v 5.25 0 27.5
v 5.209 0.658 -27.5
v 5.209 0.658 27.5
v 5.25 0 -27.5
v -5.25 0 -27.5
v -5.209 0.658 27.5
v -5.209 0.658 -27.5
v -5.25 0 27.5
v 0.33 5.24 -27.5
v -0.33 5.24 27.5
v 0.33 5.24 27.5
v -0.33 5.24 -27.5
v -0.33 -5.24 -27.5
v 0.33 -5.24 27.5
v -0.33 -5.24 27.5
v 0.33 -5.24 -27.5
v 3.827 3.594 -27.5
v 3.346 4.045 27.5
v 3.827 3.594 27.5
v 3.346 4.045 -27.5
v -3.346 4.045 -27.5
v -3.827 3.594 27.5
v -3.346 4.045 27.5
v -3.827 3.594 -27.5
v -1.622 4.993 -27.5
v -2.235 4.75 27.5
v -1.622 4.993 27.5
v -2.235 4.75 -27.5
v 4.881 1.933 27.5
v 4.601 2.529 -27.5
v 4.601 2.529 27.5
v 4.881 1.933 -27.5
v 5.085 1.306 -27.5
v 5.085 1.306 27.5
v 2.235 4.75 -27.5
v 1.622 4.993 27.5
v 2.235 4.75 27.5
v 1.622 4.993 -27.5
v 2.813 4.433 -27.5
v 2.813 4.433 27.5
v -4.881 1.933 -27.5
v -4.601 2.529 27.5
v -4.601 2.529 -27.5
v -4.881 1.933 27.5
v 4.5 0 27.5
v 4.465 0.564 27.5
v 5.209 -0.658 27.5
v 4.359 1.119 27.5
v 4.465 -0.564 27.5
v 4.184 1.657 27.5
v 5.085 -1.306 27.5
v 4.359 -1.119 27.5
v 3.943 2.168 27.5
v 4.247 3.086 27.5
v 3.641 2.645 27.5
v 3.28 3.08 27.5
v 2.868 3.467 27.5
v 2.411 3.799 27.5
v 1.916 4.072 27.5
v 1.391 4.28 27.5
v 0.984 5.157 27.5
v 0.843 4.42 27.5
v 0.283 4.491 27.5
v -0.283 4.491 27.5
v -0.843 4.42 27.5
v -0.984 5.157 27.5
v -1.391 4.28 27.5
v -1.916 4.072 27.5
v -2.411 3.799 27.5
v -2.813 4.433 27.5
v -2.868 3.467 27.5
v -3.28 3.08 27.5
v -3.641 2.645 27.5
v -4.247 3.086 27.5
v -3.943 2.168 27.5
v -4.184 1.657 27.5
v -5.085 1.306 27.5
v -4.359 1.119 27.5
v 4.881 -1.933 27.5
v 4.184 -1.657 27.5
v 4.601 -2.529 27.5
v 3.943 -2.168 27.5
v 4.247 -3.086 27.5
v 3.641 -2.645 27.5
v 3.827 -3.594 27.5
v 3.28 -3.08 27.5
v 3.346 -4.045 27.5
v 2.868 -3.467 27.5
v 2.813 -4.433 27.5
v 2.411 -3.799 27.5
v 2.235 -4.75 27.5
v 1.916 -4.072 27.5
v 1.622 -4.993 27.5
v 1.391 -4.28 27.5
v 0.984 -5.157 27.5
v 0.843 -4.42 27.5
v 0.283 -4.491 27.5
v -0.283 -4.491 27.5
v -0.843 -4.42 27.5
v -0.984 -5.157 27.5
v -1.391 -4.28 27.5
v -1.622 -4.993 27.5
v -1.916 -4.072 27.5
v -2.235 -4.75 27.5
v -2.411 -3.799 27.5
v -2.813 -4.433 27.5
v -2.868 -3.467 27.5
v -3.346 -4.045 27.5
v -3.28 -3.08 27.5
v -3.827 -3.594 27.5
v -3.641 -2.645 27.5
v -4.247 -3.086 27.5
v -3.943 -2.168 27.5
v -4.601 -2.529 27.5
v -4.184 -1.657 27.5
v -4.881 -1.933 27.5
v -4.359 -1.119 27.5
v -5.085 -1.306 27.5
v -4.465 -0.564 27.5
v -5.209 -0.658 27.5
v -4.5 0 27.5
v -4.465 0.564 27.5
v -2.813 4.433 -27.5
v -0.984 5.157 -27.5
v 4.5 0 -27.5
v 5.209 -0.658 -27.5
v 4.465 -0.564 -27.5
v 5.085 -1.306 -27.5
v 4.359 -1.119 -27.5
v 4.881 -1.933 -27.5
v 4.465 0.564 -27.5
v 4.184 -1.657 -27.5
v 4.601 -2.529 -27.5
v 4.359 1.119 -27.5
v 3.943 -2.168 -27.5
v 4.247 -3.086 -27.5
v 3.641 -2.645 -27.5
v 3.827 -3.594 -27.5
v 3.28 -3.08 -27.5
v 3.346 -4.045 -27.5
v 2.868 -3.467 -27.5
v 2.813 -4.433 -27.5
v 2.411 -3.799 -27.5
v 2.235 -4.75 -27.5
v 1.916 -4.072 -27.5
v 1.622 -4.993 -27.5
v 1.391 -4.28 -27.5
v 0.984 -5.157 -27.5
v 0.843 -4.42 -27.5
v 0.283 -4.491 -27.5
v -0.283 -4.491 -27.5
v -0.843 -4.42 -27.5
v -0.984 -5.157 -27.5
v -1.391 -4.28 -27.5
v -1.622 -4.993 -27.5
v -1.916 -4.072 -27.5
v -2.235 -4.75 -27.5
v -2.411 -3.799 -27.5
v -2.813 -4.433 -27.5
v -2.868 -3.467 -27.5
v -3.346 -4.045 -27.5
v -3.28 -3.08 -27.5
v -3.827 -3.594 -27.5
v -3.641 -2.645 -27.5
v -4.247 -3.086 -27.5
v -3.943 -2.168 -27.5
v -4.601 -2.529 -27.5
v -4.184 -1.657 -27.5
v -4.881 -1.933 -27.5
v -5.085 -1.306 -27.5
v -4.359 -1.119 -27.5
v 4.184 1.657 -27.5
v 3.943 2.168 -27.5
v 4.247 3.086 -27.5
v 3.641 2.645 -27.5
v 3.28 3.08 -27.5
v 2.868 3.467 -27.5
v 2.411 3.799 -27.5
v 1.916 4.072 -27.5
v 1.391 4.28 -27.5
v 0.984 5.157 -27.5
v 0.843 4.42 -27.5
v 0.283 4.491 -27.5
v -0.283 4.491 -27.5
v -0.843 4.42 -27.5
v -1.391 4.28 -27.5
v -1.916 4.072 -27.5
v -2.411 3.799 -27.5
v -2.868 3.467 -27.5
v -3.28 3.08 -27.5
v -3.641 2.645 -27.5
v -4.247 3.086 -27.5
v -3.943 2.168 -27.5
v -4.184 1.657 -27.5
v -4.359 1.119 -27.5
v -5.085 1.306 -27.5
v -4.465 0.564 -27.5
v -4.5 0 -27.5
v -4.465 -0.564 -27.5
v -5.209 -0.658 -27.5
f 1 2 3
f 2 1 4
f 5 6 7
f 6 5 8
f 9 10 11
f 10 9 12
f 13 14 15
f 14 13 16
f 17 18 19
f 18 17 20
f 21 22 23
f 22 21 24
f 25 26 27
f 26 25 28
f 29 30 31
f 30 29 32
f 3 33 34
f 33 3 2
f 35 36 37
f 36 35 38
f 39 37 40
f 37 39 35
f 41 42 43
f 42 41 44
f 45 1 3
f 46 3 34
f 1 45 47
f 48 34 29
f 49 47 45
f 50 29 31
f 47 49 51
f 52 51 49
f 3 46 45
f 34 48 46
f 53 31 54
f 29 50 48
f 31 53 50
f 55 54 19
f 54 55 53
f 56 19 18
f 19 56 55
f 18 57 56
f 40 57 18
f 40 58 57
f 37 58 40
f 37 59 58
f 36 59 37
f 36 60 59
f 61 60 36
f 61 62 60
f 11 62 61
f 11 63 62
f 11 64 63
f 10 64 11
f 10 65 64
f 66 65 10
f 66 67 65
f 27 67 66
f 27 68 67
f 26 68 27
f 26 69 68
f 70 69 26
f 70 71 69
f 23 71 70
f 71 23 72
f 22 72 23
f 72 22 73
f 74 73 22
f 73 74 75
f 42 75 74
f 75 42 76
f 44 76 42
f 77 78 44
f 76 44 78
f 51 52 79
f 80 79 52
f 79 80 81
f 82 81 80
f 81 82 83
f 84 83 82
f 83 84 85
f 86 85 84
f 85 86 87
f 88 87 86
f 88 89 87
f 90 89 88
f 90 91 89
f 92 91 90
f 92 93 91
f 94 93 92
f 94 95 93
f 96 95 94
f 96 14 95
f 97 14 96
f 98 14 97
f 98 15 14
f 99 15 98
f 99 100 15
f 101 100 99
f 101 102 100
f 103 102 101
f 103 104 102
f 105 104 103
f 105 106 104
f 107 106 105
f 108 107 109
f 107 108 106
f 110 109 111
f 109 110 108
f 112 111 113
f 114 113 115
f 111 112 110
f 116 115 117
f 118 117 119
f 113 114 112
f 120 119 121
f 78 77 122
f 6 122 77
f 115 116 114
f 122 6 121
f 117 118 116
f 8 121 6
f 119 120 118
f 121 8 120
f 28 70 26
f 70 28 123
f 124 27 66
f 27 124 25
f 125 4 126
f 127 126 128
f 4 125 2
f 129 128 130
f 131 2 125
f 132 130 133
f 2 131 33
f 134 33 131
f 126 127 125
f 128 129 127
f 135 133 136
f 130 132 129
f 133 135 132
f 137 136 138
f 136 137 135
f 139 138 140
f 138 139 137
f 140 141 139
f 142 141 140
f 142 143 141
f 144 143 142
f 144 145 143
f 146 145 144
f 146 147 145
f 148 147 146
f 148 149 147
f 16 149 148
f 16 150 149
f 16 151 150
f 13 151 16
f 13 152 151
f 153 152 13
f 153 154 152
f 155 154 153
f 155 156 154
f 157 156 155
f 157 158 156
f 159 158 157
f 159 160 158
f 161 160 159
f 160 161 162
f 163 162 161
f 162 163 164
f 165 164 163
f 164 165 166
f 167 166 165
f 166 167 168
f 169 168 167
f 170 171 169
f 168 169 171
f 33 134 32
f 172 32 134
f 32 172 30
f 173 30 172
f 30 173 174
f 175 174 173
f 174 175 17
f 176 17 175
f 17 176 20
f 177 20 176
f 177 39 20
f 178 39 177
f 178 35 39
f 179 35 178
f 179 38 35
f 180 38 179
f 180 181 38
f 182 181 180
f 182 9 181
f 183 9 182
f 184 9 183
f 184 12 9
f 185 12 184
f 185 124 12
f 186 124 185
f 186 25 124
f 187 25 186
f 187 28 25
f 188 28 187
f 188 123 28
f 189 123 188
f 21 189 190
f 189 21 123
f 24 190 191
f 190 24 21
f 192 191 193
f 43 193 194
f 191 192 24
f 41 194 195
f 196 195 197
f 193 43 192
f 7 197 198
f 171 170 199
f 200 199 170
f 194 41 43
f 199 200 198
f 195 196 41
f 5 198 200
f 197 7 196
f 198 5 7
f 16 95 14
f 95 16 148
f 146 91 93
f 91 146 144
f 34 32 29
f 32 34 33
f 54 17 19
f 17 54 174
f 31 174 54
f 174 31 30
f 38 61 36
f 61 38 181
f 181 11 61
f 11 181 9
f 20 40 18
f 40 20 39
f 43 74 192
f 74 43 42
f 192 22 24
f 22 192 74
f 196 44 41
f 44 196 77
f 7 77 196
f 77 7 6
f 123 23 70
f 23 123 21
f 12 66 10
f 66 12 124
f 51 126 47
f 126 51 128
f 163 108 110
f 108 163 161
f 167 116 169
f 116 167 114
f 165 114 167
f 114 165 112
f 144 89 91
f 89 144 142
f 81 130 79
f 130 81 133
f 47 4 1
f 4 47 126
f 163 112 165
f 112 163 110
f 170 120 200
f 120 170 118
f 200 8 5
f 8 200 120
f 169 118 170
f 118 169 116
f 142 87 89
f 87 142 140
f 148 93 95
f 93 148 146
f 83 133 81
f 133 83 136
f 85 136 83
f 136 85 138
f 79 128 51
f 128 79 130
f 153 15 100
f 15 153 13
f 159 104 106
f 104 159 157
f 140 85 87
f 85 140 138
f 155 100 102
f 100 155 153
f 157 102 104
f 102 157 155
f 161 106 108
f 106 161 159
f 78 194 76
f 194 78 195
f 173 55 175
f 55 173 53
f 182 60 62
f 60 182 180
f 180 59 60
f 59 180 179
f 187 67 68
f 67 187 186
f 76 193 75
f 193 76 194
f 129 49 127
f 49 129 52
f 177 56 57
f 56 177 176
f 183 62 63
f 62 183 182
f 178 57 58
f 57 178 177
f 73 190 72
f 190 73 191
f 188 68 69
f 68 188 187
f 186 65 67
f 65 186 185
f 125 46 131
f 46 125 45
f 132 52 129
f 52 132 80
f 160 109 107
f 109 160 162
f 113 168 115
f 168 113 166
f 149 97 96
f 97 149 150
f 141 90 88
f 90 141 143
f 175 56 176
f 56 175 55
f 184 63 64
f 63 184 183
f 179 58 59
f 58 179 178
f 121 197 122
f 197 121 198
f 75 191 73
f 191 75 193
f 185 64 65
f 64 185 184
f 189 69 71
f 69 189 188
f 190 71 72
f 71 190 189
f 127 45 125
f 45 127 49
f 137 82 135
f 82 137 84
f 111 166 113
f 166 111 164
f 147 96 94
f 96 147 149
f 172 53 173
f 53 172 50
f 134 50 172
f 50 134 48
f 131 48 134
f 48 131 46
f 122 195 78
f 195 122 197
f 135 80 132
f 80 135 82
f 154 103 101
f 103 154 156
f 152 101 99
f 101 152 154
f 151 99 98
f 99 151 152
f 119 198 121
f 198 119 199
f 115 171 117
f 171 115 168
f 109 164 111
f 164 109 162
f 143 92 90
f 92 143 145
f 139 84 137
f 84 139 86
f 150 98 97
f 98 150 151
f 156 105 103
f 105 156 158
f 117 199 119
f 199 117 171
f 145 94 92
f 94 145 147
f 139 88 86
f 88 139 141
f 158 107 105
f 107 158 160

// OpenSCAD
$fn = 50;


difference() {
	union() {
		translate(v = [0, 0, -27.5000000000]) {
			cylinder(h = 55, r = 5.2500000000);
		}
	}
	union() {
		translate(v = [0, 0, -100.0000000000]) {
			cylinder(h = 200, r = 4.5000000000);
		}
	}
}
